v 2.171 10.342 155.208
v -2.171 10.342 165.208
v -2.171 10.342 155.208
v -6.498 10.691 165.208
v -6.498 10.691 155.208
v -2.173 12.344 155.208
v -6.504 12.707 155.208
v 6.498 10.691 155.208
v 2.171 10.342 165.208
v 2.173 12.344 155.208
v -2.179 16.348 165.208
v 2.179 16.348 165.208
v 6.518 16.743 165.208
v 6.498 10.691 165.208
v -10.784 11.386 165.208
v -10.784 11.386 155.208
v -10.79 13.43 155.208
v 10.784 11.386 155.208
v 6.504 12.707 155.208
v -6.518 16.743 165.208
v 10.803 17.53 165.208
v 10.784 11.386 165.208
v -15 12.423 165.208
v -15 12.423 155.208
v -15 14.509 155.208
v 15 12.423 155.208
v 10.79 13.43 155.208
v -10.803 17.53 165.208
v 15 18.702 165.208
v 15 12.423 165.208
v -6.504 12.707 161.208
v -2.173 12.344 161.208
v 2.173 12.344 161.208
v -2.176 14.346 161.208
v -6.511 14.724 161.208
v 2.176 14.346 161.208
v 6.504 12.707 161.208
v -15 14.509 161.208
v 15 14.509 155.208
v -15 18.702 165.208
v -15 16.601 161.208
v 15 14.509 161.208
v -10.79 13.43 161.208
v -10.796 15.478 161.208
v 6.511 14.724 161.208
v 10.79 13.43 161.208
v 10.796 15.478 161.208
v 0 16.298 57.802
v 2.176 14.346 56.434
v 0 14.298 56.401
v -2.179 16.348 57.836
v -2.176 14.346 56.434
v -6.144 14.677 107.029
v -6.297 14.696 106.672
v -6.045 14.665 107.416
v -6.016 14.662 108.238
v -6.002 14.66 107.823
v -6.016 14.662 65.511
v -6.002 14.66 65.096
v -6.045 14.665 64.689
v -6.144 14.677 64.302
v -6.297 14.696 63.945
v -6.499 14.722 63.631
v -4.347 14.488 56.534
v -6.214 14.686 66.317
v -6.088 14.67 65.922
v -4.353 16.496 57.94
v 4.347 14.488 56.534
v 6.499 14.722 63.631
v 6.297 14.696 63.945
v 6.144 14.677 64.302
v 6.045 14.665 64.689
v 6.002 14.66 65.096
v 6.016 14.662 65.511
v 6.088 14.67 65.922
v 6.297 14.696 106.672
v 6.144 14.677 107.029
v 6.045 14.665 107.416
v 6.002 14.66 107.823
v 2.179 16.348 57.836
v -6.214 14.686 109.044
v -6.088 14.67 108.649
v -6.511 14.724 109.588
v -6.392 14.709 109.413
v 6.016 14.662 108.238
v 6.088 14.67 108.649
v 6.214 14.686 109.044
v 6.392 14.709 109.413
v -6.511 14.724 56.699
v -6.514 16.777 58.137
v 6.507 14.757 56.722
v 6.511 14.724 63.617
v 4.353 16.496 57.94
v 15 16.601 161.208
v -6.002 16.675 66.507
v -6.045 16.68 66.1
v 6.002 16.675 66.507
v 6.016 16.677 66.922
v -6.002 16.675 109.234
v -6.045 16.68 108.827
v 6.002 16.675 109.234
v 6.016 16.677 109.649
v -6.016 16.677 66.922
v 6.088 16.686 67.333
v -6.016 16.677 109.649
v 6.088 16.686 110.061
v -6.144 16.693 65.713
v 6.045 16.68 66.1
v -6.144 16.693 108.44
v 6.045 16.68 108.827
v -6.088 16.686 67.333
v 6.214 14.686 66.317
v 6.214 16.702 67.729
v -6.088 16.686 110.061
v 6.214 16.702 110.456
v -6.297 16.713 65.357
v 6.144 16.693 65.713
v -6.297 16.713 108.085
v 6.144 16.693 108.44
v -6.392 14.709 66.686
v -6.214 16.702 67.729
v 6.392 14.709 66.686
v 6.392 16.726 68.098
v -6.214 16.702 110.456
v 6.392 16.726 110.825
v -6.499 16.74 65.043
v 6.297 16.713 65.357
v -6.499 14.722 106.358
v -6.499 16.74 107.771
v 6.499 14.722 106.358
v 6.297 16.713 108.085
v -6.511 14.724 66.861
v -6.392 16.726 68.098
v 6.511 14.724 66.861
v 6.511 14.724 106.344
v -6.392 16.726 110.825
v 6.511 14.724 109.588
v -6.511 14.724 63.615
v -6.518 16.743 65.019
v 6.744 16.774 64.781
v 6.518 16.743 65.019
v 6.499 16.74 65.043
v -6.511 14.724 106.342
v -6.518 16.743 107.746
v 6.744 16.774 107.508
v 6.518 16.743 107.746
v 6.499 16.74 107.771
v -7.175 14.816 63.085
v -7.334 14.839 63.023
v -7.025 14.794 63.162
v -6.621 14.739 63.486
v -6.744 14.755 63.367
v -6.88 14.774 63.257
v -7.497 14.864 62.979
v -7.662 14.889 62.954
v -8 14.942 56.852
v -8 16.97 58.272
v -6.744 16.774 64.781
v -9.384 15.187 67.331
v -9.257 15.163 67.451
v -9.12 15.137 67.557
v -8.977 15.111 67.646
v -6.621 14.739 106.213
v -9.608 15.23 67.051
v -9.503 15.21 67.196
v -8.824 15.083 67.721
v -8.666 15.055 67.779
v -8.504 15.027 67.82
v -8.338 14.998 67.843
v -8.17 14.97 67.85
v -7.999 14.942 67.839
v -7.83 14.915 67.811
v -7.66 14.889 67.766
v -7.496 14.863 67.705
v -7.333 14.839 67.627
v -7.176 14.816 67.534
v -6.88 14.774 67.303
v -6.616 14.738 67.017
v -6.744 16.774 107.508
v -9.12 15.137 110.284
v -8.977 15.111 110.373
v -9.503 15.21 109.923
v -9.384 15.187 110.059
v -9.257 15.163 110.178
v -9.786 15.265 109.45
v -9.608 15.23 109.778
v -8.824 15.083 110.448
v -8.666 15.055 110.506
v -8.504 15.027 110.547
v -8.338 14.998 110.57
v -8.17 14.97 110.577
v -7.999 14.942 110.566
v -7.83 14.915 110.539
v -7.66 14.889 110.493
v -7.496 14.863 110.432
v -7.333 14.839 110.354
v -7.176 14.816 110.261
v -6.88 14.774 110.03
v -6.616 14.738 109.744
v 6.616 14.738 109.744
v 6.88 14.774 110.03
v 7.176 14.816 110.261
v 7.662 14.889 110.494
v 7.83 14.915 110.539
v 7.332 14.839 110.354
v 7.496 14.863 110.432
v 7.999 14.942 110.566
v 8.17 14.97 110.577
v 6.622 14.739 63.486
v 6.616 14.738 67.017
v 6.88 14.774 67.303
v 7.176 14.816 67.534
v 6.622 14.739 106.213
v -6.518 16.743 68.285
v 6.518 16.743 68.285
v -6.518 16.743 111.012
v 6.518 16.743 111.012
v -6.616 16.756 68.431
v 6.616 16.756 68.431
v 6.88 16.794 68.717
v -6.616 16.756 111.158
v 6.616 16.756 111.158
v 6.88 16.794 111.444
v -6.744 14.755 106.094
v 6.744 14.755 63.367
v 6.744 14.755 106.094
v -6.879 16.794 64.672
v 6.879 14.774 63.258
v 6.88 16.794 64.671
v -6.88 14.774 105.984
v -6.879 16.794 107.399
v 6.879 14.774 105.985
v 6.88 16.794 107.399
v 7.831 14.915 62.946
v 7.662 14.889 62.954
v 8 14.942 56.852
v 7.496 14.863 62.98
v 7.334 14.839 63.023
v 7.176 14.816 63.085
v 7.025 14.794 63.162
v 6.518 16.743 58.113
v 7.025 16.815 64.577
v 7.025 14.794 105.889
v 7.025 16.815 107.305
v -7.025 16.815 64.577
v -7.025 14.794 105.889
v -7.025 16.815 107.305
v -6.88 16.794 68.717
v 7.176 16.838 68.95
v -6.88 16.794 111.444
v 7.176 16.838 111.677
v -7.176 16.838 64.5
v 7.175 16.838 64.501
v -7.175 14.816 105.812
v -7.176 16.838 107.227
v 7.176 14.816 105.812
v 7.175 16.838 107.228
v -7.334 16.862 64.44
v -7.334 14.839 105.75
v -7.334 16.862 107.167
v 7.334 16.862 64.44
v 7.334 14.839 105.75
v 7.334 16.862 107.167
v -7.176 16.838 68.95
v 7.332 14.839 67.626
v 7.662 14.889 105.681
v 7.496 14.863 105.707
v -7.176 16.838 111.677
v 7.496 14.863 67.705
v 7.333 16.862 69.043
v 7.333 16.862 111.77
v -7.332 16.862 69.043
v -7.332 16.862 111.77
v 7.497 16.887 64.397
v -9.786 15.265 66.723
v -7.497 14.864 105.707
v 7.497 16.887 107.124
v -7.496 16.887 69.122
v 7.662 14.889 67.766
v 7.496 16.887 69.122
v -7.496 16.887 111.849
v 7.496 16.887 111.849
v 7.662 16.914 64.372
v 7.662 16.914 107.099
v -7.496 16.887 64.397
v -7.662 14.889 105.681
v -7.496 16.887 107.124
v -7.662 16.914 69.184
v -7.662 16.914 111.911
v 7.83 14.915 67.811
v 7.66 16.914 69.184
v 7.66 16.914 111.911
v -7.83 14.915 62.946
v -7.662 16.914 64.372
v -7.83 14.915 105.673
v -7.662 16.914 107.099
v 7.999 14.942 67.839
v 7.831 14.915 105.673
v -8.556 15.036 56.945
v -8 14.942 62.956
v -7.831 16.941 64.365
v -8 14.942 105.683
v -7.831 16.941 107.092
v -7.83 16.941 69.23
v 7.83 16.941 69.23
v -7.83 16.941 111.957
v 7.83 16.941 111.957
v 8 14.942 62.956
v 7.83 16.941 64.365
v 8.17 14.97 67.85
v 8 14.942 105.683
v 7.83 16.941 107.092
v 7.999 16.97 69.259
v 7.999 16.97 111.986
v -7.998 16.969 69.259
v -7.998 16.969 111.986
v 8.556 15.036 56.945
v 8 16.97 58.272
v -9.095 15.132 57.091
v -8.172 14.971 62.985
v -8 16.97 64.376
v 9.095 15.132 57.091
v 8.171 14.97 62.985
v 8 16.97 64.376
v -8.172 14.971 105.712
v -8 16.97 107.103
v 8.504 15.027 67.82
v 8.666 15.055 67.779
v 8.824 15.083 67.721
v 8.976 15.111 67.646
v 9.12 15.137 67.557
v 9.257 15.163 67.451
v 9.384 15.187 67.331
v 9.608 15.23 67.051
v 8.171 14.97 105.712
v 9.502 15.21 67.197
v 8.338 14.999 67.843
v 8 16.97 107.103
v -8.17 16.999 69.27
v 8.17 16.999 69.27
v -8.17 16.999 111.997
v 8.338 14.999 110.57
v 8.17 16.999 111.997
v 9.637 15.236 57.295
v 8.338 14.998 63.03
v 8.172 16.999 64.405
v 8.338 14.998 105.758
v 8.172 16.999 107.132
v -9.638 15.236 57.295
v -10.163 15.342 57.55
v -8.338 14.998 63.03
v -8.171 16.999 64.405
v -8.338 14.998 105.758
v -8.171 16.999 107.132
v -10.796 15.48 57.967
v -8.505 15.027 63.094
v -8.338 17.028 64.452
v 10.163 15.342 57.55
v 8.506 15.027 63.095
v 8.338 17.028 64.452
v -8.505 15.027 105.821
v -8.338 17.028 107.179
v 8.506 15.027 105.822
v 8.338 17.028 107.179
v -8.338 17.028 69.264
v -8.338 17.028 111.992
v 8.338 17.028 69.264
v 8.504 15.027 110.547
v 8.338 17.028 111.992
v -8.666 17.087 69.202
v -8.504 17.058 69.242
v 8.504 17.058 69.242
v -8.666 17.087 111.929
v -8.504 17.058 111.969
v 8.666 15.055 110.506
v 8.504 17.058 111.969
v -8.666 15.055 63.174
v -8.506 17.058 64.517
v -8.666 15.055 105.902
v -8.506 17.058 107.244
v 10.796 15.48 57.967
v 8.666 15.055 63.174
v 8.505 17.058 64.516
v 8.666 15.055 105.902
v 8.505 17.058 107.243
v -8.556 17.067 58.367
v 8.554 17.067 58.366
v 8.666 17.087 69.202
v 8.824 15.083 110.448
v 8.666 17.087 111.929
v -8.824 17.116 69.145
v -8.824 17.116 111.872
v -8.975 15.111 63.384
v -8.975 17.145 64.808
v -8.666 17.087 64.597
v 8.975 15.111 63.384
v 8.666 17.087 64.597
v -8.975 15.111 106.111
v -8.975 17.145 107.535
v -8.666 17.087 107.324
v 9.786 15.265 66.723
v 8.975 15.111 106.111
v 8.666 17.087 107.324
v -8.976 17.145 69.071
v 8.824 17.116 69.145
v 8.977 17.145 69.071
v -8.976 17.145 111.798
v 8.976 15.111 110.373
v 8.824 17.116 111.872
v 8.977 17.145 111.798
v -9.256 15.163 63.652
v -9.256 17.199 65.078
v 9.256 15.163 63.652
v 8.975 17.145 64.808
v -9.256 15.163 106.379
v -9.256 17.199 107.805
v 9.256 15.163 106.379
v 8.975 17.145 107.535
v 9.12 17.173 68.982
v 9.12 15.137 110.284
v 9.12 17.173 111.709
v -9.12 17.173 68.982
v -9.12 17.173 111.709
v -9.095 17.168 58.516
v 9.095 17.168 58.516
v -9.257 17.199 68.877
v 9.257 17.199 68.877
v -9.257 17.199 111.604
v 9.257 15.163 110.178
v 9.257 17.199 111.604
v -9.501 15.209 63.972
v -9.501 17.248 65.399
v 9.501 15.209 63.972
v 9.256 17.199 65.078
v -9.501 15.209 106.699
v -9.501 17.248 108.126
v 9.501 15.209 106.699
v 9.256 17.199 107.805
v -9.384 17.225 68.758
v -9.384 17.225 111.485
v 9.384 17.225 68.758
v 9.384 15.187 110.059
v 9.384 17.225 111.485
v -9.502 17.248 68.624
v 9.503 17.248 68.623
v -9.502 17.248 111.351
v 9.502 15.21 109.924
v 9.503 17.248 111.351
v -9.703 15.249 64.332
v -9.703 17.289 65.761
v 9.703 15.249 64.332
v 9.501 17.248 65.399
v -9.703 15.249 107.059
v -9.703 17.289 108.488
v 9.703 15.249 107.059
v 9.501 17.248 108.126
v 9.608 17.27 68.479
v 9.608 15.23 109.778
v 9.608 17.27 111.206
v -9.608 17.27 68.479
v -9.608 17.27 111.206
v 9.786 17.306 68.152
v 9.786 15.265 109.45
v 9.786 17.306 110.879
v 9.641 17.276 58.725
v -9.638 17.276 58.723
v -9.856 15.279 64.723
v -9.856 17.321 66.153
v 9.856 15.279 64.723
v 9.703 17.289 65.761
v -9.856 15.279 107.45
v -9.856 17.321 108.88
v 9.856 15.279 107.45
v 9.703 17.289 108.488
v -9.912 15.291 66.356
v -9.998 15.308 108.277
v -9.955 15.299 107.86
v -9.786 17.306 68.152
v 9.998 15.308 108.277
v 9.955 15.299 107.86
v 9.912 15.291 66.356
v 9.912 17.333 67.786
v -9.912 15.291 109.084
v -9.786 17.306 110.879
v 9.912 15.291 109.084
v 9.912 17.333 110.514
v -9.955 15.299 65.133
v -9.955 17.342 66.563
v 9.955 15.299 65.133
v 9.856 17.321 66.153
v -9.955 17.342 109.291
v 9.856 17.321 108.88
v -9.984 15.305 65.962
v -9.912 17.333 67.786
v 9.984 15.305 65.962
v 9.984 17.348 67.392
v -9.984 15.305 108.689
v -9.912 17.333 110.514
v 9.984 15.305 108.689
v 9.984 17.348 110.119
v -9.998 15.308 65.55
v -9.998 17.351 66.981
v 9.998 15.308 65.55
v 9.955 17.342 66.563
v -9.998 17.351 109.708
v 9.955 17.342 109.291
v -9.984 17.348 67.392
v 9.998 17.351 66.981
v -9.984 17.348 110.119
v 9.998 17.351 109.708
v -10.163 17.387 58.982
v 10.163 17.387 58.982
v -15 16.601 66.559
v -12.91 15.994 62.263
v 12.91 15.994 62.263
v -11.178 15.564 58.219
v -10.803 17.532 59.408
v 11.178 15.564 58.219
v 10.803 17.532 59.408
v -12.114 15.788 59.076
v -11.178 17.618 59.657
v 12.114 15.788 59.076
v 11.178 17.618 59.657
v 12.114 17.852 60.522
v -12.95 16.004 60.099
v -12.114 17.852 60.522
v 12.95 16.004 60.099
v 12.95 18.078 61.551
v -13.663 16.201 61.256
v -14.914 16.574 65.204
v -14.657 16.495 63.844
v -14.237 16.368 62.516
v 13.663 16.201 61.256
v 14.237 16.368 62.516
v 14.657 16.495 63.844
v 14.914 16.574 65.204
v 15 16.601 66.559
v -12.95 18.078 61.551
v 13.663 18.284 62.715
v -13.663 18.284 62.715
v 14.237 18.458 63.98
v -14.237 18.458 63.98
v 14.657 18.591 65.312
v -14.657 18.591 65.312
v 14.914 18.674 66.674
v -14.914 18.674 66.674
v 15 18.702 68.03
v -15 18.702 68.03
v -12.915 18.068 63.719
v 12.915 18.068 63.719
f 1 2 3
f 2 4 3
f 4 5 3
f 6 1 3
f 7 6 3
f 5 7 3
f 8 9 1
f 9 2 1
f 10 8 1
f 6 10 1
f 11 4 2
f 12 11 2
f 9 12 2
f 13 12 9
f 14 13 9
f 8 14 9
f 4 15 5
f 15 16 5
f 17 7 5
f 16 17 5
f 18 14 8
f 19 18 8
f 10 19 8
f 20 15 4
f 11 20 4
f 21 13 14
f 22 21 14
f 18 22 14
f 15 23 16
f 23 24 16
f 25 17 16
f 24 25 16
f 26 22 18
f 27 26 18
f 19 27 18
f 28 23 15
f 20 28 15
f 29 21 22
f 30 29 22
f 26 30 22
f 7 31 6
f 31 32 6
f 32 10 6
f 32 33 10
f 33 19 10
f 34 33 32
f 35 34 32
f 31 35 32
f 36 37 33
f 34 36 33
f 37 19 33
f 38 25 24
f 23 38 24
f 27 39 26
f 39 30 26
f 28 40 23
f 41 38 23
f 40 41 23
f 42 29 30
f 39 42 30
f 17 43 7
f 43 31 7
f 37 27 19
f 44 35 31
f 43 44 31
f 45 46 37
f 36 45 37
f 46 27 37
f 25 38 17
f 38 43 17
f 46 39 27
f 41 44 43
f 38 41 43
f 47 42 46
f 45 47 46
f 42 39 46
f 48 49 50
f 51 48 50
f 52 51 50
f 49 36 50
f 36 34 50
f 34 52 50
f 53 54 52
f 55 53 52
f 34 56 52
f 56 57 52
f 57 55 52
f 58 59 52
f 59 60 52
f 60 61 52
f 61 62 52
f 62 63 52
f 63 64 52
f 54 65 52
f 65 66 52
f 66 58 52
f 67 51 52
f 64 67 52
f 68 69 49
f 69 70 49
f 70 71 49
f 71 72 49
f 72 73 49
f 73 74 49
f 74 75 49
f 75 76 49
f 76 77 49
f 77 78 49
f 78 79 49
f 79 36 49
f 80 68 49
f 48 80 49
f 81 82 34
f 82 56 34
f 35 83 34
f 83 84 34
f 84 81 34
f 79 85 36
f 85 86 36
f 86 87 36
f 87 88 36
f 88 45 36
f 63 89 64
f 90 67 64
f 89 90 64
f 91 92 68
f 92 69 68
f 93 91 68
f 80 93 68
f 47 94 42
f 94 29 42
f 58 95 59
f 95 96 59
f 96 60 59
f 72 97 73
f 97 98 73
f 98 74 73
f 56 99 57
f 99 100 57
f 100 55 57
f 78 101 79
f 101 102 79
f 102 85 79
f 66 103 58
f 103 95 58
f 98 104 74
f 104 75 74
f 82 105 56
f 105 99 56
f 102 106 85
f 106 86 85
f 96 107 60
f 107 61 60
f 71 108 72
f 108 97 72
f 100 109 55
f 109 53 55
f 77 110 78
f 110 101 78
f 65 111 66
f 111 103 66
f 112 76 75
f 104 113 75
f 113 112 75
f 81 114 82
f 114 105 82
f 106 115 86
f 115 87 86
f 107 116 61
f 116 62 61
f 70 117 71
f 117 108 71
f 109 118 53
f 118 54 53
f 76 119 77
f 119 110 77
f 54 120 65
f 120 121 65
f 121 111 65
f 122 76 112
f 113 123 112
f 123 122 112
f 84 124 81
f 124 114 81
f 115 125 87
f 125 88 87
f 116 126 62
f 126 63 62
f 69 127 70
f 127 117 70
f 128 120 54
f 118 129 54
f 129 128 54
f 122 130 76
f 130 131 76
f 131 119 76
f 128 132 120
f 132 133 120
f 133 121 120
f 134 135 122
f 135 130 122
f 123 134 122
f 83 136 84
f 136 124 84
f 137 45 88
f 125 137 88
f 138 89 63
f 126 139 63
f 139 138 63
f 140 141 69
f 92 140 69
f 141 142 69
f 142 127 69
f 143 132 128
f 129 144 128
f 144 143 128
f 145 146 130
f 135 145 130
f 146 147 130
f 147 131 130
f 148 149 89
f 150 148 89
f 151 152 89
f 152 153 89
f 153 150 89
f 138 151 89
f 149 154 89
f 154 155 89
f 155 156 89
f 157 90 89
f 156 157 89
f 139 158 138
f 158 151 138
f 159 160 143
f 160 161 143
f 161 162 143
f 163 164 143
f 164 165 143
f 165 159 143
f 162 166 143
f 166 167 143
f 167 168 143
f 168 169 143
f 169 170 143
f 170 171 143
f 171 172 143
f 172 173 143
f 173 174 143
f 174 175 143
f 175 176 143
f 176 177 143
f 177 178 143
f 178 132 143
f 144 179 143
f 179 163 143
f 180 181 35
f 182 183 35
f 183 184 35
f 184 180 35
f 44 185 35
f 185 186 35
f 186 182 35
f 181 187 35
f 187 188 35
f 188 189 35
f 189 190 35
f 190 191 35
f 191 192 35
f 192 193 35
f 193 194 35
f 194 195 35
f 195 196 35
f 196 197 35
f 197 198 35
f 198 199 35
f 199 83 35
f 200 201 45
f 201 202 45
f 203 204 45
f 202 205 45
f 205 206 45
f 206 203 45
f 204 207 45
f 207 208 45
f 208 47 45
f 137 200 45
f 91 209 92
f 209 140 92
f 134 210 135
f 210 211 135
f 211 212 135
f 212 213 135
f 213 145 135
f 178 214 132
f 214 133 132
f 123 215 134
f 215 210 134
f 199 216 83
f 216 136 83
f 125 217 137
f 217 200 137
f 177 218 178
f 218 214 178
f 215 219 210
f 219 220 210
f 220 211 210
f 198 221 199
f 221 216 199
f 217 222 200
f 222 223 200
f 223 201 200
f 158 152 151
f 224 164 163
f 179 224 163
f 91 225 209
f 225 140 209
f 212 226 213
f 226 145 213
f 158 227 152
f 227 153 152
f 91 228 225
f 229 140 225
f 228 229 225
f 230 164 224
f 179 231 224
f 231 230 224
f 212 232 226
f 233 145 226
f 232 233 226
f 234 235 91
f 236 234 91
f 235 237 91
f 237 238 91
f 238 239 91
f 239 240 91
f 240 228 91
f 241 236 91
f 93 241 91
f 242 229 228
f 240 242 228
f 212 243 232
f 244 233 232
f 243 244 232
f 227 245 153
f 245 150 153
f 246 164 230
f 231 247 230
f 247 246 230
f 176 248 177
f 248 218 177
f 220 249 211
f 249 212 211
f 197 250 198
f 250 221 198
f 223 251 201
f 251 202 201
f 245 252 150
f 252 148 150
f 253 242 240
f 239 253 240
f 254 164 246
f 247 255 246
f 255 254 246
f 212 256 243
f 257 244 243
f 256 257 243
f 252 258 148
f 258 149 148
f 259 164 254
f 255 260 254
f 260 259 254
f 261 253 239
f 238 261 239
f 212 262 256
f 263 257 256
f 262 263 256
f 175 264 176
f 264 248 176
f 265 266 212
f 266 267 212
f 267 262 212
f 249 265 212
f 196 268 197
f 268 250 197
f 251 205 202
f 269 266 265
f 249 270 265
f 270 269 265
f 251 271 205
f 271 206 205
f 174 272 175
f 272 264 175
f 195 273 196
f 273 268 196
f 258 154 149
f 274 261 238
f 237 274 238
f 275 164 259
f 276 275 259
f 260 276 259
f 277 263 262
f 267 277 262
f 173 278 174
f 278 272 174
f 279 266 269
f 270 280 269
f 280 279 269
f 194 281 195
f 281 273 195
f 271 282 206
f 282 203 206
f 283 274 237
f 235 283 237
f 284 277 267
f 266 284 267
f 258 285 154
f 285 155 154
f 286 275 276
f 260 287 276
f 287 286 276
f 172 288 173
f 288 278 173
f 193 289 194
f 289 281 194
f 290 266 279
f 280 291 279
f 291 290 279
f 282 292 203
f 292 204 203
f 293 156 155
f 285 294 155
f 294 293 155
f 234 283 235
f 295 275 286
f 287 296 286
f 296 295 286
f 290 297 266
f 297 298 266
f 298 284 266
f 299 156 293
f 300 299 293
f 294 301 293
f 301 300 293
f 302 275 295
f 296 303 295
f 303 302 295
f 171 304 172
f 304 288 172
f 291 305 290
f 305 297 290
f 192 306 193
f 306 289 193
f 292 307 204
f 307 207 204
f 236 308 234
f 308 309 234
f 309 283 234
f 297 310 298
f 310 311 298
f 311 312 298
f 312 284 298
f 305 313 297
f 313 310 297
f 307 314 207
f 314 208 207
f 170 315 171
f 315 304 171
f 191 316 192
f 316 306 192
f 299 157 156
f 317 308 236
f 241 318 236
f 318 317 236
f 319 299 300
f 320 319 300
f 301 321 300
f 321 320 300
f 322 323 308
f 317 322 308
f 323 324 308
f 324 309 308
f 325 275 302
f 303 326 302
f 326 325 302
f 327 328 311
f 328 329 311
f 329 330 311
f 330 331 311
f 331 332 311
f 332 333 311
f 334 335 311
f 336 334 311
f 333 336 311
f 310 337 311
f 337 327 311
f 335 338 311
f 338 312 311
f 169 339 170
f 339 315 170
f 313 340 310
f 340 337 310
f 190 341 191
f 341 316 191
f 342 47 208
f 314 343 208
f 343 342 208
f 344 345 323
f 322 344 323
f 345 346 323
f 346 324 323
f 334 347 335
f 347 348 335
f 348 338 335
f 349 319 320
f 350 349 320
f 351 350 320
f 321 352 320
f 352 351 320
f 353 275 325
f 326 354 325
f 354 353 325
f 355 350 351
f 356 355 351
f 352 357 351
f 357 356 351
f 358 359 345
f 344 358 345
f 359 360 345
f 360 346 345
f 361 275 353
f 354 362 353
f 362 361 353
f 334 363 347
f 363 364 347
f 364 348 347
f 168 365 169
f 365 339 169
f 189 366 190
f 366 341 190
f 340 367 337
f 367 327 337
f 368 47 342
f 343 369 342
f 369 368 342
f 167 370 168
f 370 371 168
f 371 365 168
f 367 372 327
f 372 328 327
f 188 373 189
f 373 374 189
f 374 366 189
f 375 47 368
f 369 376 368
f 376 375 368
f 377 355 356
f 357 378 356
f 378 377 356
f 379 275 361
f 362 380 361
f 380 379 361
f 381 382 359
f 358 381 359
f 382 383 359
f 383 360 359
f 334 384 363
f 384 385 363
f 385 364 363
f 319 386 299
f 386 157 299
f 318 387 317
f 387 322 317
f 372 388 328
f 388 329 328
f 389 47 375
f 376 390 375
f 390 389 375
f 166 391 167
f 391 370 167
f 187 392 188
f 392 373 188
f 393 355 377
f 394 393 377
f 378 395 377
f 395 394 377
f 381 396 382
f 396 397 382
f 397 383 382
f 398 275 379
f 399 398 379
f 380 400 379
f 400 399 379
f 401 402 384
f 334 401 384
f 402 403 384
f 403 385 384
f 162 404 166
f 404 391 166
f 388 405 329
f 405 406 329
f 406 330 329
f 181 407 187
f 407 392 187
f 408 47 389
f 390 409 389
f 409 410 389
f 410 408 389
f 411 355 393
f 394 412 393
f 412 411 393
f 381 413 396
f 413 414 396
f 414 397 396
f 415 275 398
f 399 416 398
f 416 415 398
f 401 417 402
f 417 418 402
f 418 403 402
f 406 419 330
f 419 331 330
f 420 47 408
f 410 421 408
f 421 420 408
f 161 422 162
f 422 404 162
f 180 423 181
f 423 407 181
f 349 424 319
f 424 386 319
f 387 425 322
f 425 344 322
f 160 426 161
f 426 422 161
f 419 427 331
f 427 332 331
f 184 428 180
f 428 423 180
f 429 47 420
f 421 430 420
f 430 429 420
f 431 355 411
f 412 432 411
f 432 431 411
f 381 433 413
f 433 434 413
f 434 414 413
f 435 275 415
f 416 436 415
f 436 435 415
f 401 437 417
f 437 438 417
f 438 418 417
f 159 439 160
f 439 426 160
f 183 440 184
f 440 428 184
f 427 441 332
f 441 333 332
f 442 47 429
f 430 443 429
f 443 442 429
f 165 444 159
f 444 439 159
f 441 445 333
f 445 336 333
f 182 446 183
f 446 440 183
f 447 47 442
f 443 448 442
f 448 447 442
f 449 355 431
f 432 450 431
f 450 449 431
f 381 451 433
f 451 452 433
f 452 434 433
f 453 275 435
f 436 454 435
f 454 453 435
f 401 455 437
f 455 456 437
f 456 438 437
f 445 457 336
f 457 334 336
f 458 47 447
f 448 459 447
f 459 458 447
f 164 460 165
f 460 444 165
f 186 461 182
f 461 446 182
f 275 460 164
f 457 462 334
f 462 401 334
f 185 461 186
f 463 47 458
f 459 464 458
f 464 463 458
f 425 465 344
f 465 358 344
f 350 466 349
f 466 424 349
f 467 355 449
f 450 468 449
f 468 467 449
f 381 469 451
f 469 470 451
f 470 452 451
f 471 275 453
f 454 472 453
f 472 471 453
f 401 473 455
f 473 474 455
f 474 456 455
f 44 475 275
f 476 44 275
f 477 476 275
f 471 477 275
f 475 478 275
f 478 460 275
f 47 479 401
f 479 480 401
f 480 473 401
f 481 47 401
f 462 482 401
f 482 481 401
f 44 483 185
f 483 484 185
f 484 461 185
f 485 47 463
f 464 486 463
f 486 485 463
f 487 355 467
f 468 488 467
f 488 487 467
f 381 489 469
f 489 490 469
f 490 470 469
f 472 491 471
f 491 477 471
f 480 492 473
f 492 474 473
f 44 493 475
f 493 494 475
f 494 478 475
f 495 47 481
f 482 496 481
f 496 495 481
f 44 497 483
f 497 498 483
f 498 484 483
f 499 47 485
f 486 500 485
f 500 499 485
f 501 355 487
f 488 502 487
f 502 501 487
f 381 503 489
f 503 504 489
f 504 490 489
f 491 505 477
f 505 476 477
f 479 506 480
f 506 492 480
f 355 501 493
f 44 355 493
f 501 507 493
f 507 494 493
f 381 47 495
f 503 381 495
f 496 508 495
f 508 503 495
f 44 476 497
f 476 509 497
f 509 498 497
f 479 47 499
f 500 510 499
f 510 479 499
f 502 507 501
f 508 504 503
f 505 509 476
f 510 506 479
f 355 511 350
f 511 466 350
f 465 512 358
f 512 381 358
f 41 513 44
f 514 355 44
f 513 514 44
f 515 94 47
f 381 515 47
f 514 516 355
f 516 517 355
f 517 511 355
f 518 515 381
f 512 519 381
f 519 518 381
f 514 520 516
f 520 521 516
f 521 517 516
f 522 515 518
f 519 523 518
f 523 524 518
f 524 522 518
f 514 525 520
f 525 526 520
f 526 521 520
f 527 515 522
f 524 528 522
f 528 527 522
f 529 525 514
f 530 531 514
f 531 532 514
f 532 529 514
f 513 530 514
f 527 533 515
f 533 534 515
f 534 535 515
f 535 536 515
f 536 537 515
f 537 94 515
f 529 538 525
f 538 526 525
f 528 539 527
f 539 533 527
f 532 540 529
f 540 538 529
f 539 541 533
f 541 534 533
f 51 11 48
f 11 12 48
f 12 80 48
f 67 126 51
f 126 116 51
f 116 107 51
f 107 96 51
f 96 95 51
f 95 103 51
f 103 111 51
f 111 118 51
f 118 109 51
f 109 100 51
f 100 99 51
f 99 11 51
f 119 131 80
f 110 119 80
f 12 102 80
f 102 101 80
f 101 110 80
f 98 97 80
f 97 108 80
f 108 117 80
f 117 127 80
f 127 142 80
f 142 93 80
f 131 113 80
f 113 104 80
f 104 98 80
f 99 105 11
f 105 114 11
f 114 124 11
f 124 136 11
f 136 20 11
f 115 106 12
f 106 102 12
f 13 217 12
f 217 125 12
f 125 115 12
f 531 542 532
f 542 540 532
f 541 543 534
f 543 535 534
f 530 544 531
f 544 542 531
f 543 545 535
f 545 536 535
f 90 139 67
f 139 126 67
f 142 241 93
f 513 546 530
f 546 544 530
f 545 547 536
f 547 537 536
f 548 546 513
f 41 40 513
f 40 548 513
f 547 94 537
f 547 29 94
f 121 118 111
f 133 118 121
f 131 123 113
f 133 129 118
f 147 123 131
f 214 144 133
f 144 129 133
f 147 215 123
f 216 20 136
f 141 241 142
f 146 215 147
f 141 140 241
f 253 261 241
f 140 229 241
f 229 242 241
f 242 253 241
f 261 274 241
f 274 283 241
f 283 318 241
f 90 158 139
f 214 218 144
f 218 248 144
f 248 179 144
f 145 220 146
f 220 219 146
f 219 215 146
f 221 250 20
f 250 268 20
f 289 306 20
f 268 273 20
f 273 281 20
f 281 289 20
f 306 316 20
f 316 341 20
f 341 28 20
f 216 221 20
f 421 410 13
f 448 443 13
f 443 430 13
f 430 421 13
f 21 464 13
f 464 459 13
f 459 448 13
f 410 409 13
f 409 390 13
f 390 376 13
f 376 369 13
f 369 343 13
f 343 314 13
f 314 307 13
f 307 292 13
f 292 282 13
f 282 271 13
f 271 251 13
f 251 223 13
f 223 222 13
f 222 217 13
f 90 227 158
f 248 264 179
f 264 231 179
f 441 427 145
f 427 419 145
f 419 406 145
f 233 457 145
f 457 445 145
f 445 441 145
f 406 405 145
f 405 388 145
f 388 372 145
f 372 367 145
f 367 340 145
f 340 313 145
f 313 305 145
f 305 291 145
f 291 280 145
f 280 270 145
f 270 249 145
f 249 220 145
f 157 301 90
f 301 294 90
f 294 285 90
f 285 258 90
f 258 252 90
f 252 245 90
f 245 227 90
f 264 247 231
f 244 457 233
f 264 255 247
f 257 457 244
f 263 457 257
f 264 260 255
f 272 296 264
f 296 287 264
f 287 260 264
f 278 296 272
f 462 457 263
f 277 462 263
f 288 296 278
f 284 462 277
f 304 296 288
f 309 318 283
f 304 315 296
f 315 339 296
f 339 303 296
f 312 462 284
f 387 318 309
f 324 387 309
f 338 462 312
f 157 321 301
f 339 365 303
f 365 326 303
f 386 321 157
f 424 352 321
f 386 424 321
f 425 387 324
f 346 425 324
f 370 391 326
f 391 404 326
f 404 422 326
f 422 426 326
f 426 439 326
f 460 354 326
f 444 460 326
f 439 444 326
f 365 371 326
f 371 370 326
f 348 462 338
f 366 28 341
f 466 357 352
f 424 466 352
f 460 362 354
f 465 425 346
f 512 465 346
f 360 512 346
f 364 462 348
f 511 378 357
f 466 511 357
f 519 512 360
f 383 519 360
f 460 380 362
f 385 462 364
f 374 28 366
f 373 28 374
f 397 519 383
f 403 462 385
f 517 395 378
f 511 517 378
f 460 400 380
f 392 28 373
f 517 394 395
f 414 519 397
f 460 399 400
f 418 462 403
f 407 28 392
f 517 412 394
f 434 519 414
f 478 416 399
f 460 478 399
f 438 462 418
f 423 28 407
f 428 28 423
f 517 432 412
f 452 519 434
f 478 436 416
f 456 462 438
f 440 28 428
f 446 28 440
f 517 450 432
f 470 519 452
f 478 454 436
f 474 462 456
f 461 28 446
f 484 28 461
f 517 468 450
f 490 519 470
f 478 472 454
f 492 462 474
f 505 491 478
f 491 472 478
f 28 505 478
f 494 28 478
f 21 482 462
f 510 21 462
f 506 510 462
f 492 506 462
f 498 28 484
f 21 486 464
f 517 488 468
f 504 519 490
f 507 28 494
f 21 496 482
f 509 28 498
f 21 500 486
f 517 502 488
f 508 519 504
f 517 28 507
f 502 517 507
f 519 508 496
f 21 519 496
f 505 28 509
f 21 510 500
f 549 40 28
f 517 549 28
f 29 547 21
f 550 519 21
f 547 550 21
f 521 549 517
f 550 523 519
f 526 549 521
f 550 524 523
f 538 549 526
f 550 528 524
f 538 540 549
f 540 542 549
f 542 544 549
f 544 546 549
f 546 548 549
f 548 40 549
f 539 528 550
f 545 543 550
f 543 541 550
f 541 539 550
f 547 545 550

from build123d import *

# Parameters (mm, degrees)
BOSS_EXTRUDE1_DEPTH     = 161.208217
BOSS_EXTRUDE2_DEPTH     = 4
BOSS_EXTRUDE3_DEPTH     = 10
BOSS_EXTRUDE4_DEPTH     = 4
SKETCH6_R               = 2
CUT_EXTRUDE1_DEPTH      = 74.097308941
CUT_EXTRUDE1_DEPTH_BACK = 66.896441548


with BuildPart() as part:
    # Sketch1 → Boss-Extrude1 (new body)
    with BuildSketch(Plane.XY):
        with BuildLine():
            Line((50, 64.298335316), (48, 64.298335316))
            ThreePointArc((48, 64.298335316), (0, 16.298335316), (-48, 64.298335316))
            Line((-48, 64.298335316), (-50, 64.298335316))
            ThreePointArc((-50, 64.298335316), (0, 14.298335316), (50, 64.298335316))
        make_face()
    extrude(amount=BOSS_EXTRUDE1_DEPTH)

    # Sketch3 → Boss-Extrude2 (add)
    with BuildSketch(Plane.XY.offset(161.208216537)):
        with BuildLine():
            Line((50, 64.298335316), (48, 64.298335316))
            ThreePointArc((48, 64.298335316), (0, 16.298335316), (-48, 64.298335316))
            Line((-48, 64.298335316), (-50, 64.298335316))
            ThreePointArc((-50, 64.298335316), (0, 14.298335316), (50, 64.298335316))
        make_face()
    extrude(amount=BOSS_EXTRUDE2_DEPTH)



with BuildPart() as body_2:
    # Sketch4 → Boss-Extrude3 (new body)
    with BuildSketch(Plane.XY.offset(165.208216537)):
        with BuildLine():
            Line((-54, 64.298335316), (-52, 64.298335316))
            ThreePointArc((-52, 64.298335316), (0, 12.298335316), (52, 64.298335316))
            Line((52, 64.298335316), (54, 64.298335316))
            ThreePointArc((54, 64.298335316), (0, 10.298335316), (-54, 64.298335316))
        make_face()
    extrude(amount=-BOSS_EXTRUDE3_DEPTH)


with BuildPart() as part_1:
    add(part.part)

    add(body_2.part)  # Boss-Extrude4 merges body 2
    # Sketch5 → Boss-Extrude4 (add)
    with BuildSketch(Plane.XY.offset(165.208216537)):
        with BuildLine():
            Line((-50, 64.298335316), (-52, 64.298335316))
            ThreePointArc((-52, 64.298335316), (0, 12.298335316), (52, 64.298335316))
            Line((52, 64.298335316), (50, 64.298335316))
            ThreePointArc((50, 64.298335316), (0, 14.298335316), (-50, 64.298335316))
        make_face()
    extrude(amount=-BOSS_EXTRUDE4_DEPTH)

    # Sketch6 → Cut-Extrude1 (cut, two sides)
    with BuildSketch(Plane(origin=(0, 66.78809677, 46.765528821), x_dir=(-1, 0, 0), z_dir=(0, -0.819152044, -0.573576436))) as cut_extrude1_sk:
        with Locations((-8, -80)):
            Circle(SKETCH6_R)
        with Locations((8, -80)):
            Circle(SKETCH6_R)
        with Locations((8, -45)):
            Circle(SKETCH6_R)
        with Locations((-8, -45)):
            Circle(SKETCH6_R)
        with BuildLine():
            Line((-15, -128.204829529), (-15, -45))
            ThreePointArc((-15, -45), (-12.949747468, -40.050252532), (-8, -38))
            Line((-8, -38), (8, -38))
            ThreePointArc((8, -38), (12.949747468, -40.050252532), (15, -45))
            Line((15, -45), (15, -128.204829529))
            add(Edge.make_bspline(
                [(15, -128.204829529), (54, -121.736527083), (54, -98.450638275)],
                knots=[1.8522764, 1.8522764, 1.8522764, 3.141592654, 3.141592654, 3.141592654], degree=2, weights=[1, 0.799305254, 1]))
            Line((54, -98.450638275), (54, 36.880010034))
            Line((54, 36.880010034), (-54, 36.880010034))
            Line((-54, 36.880010034), (-54, -98.450638275))
            add(Edge.make_bspline(
                [(-54, -98.450638275), (-54, -121.736527083), (-15, -128.204829529)],
                knots=[0, 0, 0, 1.289316254, 1.289316254, 1.289316254], degree=2, weights=[1, 0.799305254, 1]))
        make_face()
    extrude(amount=CUT_EXTRUDE1_DEPTH, mode=Mode.SUBTRACT)
    extrude(cut_extrude1_sk.sketch, amount=-CUT_EXTRUDE1_DEPTH_BACK, mode=Mode.SUBTRACT)


solid = part_1.part
